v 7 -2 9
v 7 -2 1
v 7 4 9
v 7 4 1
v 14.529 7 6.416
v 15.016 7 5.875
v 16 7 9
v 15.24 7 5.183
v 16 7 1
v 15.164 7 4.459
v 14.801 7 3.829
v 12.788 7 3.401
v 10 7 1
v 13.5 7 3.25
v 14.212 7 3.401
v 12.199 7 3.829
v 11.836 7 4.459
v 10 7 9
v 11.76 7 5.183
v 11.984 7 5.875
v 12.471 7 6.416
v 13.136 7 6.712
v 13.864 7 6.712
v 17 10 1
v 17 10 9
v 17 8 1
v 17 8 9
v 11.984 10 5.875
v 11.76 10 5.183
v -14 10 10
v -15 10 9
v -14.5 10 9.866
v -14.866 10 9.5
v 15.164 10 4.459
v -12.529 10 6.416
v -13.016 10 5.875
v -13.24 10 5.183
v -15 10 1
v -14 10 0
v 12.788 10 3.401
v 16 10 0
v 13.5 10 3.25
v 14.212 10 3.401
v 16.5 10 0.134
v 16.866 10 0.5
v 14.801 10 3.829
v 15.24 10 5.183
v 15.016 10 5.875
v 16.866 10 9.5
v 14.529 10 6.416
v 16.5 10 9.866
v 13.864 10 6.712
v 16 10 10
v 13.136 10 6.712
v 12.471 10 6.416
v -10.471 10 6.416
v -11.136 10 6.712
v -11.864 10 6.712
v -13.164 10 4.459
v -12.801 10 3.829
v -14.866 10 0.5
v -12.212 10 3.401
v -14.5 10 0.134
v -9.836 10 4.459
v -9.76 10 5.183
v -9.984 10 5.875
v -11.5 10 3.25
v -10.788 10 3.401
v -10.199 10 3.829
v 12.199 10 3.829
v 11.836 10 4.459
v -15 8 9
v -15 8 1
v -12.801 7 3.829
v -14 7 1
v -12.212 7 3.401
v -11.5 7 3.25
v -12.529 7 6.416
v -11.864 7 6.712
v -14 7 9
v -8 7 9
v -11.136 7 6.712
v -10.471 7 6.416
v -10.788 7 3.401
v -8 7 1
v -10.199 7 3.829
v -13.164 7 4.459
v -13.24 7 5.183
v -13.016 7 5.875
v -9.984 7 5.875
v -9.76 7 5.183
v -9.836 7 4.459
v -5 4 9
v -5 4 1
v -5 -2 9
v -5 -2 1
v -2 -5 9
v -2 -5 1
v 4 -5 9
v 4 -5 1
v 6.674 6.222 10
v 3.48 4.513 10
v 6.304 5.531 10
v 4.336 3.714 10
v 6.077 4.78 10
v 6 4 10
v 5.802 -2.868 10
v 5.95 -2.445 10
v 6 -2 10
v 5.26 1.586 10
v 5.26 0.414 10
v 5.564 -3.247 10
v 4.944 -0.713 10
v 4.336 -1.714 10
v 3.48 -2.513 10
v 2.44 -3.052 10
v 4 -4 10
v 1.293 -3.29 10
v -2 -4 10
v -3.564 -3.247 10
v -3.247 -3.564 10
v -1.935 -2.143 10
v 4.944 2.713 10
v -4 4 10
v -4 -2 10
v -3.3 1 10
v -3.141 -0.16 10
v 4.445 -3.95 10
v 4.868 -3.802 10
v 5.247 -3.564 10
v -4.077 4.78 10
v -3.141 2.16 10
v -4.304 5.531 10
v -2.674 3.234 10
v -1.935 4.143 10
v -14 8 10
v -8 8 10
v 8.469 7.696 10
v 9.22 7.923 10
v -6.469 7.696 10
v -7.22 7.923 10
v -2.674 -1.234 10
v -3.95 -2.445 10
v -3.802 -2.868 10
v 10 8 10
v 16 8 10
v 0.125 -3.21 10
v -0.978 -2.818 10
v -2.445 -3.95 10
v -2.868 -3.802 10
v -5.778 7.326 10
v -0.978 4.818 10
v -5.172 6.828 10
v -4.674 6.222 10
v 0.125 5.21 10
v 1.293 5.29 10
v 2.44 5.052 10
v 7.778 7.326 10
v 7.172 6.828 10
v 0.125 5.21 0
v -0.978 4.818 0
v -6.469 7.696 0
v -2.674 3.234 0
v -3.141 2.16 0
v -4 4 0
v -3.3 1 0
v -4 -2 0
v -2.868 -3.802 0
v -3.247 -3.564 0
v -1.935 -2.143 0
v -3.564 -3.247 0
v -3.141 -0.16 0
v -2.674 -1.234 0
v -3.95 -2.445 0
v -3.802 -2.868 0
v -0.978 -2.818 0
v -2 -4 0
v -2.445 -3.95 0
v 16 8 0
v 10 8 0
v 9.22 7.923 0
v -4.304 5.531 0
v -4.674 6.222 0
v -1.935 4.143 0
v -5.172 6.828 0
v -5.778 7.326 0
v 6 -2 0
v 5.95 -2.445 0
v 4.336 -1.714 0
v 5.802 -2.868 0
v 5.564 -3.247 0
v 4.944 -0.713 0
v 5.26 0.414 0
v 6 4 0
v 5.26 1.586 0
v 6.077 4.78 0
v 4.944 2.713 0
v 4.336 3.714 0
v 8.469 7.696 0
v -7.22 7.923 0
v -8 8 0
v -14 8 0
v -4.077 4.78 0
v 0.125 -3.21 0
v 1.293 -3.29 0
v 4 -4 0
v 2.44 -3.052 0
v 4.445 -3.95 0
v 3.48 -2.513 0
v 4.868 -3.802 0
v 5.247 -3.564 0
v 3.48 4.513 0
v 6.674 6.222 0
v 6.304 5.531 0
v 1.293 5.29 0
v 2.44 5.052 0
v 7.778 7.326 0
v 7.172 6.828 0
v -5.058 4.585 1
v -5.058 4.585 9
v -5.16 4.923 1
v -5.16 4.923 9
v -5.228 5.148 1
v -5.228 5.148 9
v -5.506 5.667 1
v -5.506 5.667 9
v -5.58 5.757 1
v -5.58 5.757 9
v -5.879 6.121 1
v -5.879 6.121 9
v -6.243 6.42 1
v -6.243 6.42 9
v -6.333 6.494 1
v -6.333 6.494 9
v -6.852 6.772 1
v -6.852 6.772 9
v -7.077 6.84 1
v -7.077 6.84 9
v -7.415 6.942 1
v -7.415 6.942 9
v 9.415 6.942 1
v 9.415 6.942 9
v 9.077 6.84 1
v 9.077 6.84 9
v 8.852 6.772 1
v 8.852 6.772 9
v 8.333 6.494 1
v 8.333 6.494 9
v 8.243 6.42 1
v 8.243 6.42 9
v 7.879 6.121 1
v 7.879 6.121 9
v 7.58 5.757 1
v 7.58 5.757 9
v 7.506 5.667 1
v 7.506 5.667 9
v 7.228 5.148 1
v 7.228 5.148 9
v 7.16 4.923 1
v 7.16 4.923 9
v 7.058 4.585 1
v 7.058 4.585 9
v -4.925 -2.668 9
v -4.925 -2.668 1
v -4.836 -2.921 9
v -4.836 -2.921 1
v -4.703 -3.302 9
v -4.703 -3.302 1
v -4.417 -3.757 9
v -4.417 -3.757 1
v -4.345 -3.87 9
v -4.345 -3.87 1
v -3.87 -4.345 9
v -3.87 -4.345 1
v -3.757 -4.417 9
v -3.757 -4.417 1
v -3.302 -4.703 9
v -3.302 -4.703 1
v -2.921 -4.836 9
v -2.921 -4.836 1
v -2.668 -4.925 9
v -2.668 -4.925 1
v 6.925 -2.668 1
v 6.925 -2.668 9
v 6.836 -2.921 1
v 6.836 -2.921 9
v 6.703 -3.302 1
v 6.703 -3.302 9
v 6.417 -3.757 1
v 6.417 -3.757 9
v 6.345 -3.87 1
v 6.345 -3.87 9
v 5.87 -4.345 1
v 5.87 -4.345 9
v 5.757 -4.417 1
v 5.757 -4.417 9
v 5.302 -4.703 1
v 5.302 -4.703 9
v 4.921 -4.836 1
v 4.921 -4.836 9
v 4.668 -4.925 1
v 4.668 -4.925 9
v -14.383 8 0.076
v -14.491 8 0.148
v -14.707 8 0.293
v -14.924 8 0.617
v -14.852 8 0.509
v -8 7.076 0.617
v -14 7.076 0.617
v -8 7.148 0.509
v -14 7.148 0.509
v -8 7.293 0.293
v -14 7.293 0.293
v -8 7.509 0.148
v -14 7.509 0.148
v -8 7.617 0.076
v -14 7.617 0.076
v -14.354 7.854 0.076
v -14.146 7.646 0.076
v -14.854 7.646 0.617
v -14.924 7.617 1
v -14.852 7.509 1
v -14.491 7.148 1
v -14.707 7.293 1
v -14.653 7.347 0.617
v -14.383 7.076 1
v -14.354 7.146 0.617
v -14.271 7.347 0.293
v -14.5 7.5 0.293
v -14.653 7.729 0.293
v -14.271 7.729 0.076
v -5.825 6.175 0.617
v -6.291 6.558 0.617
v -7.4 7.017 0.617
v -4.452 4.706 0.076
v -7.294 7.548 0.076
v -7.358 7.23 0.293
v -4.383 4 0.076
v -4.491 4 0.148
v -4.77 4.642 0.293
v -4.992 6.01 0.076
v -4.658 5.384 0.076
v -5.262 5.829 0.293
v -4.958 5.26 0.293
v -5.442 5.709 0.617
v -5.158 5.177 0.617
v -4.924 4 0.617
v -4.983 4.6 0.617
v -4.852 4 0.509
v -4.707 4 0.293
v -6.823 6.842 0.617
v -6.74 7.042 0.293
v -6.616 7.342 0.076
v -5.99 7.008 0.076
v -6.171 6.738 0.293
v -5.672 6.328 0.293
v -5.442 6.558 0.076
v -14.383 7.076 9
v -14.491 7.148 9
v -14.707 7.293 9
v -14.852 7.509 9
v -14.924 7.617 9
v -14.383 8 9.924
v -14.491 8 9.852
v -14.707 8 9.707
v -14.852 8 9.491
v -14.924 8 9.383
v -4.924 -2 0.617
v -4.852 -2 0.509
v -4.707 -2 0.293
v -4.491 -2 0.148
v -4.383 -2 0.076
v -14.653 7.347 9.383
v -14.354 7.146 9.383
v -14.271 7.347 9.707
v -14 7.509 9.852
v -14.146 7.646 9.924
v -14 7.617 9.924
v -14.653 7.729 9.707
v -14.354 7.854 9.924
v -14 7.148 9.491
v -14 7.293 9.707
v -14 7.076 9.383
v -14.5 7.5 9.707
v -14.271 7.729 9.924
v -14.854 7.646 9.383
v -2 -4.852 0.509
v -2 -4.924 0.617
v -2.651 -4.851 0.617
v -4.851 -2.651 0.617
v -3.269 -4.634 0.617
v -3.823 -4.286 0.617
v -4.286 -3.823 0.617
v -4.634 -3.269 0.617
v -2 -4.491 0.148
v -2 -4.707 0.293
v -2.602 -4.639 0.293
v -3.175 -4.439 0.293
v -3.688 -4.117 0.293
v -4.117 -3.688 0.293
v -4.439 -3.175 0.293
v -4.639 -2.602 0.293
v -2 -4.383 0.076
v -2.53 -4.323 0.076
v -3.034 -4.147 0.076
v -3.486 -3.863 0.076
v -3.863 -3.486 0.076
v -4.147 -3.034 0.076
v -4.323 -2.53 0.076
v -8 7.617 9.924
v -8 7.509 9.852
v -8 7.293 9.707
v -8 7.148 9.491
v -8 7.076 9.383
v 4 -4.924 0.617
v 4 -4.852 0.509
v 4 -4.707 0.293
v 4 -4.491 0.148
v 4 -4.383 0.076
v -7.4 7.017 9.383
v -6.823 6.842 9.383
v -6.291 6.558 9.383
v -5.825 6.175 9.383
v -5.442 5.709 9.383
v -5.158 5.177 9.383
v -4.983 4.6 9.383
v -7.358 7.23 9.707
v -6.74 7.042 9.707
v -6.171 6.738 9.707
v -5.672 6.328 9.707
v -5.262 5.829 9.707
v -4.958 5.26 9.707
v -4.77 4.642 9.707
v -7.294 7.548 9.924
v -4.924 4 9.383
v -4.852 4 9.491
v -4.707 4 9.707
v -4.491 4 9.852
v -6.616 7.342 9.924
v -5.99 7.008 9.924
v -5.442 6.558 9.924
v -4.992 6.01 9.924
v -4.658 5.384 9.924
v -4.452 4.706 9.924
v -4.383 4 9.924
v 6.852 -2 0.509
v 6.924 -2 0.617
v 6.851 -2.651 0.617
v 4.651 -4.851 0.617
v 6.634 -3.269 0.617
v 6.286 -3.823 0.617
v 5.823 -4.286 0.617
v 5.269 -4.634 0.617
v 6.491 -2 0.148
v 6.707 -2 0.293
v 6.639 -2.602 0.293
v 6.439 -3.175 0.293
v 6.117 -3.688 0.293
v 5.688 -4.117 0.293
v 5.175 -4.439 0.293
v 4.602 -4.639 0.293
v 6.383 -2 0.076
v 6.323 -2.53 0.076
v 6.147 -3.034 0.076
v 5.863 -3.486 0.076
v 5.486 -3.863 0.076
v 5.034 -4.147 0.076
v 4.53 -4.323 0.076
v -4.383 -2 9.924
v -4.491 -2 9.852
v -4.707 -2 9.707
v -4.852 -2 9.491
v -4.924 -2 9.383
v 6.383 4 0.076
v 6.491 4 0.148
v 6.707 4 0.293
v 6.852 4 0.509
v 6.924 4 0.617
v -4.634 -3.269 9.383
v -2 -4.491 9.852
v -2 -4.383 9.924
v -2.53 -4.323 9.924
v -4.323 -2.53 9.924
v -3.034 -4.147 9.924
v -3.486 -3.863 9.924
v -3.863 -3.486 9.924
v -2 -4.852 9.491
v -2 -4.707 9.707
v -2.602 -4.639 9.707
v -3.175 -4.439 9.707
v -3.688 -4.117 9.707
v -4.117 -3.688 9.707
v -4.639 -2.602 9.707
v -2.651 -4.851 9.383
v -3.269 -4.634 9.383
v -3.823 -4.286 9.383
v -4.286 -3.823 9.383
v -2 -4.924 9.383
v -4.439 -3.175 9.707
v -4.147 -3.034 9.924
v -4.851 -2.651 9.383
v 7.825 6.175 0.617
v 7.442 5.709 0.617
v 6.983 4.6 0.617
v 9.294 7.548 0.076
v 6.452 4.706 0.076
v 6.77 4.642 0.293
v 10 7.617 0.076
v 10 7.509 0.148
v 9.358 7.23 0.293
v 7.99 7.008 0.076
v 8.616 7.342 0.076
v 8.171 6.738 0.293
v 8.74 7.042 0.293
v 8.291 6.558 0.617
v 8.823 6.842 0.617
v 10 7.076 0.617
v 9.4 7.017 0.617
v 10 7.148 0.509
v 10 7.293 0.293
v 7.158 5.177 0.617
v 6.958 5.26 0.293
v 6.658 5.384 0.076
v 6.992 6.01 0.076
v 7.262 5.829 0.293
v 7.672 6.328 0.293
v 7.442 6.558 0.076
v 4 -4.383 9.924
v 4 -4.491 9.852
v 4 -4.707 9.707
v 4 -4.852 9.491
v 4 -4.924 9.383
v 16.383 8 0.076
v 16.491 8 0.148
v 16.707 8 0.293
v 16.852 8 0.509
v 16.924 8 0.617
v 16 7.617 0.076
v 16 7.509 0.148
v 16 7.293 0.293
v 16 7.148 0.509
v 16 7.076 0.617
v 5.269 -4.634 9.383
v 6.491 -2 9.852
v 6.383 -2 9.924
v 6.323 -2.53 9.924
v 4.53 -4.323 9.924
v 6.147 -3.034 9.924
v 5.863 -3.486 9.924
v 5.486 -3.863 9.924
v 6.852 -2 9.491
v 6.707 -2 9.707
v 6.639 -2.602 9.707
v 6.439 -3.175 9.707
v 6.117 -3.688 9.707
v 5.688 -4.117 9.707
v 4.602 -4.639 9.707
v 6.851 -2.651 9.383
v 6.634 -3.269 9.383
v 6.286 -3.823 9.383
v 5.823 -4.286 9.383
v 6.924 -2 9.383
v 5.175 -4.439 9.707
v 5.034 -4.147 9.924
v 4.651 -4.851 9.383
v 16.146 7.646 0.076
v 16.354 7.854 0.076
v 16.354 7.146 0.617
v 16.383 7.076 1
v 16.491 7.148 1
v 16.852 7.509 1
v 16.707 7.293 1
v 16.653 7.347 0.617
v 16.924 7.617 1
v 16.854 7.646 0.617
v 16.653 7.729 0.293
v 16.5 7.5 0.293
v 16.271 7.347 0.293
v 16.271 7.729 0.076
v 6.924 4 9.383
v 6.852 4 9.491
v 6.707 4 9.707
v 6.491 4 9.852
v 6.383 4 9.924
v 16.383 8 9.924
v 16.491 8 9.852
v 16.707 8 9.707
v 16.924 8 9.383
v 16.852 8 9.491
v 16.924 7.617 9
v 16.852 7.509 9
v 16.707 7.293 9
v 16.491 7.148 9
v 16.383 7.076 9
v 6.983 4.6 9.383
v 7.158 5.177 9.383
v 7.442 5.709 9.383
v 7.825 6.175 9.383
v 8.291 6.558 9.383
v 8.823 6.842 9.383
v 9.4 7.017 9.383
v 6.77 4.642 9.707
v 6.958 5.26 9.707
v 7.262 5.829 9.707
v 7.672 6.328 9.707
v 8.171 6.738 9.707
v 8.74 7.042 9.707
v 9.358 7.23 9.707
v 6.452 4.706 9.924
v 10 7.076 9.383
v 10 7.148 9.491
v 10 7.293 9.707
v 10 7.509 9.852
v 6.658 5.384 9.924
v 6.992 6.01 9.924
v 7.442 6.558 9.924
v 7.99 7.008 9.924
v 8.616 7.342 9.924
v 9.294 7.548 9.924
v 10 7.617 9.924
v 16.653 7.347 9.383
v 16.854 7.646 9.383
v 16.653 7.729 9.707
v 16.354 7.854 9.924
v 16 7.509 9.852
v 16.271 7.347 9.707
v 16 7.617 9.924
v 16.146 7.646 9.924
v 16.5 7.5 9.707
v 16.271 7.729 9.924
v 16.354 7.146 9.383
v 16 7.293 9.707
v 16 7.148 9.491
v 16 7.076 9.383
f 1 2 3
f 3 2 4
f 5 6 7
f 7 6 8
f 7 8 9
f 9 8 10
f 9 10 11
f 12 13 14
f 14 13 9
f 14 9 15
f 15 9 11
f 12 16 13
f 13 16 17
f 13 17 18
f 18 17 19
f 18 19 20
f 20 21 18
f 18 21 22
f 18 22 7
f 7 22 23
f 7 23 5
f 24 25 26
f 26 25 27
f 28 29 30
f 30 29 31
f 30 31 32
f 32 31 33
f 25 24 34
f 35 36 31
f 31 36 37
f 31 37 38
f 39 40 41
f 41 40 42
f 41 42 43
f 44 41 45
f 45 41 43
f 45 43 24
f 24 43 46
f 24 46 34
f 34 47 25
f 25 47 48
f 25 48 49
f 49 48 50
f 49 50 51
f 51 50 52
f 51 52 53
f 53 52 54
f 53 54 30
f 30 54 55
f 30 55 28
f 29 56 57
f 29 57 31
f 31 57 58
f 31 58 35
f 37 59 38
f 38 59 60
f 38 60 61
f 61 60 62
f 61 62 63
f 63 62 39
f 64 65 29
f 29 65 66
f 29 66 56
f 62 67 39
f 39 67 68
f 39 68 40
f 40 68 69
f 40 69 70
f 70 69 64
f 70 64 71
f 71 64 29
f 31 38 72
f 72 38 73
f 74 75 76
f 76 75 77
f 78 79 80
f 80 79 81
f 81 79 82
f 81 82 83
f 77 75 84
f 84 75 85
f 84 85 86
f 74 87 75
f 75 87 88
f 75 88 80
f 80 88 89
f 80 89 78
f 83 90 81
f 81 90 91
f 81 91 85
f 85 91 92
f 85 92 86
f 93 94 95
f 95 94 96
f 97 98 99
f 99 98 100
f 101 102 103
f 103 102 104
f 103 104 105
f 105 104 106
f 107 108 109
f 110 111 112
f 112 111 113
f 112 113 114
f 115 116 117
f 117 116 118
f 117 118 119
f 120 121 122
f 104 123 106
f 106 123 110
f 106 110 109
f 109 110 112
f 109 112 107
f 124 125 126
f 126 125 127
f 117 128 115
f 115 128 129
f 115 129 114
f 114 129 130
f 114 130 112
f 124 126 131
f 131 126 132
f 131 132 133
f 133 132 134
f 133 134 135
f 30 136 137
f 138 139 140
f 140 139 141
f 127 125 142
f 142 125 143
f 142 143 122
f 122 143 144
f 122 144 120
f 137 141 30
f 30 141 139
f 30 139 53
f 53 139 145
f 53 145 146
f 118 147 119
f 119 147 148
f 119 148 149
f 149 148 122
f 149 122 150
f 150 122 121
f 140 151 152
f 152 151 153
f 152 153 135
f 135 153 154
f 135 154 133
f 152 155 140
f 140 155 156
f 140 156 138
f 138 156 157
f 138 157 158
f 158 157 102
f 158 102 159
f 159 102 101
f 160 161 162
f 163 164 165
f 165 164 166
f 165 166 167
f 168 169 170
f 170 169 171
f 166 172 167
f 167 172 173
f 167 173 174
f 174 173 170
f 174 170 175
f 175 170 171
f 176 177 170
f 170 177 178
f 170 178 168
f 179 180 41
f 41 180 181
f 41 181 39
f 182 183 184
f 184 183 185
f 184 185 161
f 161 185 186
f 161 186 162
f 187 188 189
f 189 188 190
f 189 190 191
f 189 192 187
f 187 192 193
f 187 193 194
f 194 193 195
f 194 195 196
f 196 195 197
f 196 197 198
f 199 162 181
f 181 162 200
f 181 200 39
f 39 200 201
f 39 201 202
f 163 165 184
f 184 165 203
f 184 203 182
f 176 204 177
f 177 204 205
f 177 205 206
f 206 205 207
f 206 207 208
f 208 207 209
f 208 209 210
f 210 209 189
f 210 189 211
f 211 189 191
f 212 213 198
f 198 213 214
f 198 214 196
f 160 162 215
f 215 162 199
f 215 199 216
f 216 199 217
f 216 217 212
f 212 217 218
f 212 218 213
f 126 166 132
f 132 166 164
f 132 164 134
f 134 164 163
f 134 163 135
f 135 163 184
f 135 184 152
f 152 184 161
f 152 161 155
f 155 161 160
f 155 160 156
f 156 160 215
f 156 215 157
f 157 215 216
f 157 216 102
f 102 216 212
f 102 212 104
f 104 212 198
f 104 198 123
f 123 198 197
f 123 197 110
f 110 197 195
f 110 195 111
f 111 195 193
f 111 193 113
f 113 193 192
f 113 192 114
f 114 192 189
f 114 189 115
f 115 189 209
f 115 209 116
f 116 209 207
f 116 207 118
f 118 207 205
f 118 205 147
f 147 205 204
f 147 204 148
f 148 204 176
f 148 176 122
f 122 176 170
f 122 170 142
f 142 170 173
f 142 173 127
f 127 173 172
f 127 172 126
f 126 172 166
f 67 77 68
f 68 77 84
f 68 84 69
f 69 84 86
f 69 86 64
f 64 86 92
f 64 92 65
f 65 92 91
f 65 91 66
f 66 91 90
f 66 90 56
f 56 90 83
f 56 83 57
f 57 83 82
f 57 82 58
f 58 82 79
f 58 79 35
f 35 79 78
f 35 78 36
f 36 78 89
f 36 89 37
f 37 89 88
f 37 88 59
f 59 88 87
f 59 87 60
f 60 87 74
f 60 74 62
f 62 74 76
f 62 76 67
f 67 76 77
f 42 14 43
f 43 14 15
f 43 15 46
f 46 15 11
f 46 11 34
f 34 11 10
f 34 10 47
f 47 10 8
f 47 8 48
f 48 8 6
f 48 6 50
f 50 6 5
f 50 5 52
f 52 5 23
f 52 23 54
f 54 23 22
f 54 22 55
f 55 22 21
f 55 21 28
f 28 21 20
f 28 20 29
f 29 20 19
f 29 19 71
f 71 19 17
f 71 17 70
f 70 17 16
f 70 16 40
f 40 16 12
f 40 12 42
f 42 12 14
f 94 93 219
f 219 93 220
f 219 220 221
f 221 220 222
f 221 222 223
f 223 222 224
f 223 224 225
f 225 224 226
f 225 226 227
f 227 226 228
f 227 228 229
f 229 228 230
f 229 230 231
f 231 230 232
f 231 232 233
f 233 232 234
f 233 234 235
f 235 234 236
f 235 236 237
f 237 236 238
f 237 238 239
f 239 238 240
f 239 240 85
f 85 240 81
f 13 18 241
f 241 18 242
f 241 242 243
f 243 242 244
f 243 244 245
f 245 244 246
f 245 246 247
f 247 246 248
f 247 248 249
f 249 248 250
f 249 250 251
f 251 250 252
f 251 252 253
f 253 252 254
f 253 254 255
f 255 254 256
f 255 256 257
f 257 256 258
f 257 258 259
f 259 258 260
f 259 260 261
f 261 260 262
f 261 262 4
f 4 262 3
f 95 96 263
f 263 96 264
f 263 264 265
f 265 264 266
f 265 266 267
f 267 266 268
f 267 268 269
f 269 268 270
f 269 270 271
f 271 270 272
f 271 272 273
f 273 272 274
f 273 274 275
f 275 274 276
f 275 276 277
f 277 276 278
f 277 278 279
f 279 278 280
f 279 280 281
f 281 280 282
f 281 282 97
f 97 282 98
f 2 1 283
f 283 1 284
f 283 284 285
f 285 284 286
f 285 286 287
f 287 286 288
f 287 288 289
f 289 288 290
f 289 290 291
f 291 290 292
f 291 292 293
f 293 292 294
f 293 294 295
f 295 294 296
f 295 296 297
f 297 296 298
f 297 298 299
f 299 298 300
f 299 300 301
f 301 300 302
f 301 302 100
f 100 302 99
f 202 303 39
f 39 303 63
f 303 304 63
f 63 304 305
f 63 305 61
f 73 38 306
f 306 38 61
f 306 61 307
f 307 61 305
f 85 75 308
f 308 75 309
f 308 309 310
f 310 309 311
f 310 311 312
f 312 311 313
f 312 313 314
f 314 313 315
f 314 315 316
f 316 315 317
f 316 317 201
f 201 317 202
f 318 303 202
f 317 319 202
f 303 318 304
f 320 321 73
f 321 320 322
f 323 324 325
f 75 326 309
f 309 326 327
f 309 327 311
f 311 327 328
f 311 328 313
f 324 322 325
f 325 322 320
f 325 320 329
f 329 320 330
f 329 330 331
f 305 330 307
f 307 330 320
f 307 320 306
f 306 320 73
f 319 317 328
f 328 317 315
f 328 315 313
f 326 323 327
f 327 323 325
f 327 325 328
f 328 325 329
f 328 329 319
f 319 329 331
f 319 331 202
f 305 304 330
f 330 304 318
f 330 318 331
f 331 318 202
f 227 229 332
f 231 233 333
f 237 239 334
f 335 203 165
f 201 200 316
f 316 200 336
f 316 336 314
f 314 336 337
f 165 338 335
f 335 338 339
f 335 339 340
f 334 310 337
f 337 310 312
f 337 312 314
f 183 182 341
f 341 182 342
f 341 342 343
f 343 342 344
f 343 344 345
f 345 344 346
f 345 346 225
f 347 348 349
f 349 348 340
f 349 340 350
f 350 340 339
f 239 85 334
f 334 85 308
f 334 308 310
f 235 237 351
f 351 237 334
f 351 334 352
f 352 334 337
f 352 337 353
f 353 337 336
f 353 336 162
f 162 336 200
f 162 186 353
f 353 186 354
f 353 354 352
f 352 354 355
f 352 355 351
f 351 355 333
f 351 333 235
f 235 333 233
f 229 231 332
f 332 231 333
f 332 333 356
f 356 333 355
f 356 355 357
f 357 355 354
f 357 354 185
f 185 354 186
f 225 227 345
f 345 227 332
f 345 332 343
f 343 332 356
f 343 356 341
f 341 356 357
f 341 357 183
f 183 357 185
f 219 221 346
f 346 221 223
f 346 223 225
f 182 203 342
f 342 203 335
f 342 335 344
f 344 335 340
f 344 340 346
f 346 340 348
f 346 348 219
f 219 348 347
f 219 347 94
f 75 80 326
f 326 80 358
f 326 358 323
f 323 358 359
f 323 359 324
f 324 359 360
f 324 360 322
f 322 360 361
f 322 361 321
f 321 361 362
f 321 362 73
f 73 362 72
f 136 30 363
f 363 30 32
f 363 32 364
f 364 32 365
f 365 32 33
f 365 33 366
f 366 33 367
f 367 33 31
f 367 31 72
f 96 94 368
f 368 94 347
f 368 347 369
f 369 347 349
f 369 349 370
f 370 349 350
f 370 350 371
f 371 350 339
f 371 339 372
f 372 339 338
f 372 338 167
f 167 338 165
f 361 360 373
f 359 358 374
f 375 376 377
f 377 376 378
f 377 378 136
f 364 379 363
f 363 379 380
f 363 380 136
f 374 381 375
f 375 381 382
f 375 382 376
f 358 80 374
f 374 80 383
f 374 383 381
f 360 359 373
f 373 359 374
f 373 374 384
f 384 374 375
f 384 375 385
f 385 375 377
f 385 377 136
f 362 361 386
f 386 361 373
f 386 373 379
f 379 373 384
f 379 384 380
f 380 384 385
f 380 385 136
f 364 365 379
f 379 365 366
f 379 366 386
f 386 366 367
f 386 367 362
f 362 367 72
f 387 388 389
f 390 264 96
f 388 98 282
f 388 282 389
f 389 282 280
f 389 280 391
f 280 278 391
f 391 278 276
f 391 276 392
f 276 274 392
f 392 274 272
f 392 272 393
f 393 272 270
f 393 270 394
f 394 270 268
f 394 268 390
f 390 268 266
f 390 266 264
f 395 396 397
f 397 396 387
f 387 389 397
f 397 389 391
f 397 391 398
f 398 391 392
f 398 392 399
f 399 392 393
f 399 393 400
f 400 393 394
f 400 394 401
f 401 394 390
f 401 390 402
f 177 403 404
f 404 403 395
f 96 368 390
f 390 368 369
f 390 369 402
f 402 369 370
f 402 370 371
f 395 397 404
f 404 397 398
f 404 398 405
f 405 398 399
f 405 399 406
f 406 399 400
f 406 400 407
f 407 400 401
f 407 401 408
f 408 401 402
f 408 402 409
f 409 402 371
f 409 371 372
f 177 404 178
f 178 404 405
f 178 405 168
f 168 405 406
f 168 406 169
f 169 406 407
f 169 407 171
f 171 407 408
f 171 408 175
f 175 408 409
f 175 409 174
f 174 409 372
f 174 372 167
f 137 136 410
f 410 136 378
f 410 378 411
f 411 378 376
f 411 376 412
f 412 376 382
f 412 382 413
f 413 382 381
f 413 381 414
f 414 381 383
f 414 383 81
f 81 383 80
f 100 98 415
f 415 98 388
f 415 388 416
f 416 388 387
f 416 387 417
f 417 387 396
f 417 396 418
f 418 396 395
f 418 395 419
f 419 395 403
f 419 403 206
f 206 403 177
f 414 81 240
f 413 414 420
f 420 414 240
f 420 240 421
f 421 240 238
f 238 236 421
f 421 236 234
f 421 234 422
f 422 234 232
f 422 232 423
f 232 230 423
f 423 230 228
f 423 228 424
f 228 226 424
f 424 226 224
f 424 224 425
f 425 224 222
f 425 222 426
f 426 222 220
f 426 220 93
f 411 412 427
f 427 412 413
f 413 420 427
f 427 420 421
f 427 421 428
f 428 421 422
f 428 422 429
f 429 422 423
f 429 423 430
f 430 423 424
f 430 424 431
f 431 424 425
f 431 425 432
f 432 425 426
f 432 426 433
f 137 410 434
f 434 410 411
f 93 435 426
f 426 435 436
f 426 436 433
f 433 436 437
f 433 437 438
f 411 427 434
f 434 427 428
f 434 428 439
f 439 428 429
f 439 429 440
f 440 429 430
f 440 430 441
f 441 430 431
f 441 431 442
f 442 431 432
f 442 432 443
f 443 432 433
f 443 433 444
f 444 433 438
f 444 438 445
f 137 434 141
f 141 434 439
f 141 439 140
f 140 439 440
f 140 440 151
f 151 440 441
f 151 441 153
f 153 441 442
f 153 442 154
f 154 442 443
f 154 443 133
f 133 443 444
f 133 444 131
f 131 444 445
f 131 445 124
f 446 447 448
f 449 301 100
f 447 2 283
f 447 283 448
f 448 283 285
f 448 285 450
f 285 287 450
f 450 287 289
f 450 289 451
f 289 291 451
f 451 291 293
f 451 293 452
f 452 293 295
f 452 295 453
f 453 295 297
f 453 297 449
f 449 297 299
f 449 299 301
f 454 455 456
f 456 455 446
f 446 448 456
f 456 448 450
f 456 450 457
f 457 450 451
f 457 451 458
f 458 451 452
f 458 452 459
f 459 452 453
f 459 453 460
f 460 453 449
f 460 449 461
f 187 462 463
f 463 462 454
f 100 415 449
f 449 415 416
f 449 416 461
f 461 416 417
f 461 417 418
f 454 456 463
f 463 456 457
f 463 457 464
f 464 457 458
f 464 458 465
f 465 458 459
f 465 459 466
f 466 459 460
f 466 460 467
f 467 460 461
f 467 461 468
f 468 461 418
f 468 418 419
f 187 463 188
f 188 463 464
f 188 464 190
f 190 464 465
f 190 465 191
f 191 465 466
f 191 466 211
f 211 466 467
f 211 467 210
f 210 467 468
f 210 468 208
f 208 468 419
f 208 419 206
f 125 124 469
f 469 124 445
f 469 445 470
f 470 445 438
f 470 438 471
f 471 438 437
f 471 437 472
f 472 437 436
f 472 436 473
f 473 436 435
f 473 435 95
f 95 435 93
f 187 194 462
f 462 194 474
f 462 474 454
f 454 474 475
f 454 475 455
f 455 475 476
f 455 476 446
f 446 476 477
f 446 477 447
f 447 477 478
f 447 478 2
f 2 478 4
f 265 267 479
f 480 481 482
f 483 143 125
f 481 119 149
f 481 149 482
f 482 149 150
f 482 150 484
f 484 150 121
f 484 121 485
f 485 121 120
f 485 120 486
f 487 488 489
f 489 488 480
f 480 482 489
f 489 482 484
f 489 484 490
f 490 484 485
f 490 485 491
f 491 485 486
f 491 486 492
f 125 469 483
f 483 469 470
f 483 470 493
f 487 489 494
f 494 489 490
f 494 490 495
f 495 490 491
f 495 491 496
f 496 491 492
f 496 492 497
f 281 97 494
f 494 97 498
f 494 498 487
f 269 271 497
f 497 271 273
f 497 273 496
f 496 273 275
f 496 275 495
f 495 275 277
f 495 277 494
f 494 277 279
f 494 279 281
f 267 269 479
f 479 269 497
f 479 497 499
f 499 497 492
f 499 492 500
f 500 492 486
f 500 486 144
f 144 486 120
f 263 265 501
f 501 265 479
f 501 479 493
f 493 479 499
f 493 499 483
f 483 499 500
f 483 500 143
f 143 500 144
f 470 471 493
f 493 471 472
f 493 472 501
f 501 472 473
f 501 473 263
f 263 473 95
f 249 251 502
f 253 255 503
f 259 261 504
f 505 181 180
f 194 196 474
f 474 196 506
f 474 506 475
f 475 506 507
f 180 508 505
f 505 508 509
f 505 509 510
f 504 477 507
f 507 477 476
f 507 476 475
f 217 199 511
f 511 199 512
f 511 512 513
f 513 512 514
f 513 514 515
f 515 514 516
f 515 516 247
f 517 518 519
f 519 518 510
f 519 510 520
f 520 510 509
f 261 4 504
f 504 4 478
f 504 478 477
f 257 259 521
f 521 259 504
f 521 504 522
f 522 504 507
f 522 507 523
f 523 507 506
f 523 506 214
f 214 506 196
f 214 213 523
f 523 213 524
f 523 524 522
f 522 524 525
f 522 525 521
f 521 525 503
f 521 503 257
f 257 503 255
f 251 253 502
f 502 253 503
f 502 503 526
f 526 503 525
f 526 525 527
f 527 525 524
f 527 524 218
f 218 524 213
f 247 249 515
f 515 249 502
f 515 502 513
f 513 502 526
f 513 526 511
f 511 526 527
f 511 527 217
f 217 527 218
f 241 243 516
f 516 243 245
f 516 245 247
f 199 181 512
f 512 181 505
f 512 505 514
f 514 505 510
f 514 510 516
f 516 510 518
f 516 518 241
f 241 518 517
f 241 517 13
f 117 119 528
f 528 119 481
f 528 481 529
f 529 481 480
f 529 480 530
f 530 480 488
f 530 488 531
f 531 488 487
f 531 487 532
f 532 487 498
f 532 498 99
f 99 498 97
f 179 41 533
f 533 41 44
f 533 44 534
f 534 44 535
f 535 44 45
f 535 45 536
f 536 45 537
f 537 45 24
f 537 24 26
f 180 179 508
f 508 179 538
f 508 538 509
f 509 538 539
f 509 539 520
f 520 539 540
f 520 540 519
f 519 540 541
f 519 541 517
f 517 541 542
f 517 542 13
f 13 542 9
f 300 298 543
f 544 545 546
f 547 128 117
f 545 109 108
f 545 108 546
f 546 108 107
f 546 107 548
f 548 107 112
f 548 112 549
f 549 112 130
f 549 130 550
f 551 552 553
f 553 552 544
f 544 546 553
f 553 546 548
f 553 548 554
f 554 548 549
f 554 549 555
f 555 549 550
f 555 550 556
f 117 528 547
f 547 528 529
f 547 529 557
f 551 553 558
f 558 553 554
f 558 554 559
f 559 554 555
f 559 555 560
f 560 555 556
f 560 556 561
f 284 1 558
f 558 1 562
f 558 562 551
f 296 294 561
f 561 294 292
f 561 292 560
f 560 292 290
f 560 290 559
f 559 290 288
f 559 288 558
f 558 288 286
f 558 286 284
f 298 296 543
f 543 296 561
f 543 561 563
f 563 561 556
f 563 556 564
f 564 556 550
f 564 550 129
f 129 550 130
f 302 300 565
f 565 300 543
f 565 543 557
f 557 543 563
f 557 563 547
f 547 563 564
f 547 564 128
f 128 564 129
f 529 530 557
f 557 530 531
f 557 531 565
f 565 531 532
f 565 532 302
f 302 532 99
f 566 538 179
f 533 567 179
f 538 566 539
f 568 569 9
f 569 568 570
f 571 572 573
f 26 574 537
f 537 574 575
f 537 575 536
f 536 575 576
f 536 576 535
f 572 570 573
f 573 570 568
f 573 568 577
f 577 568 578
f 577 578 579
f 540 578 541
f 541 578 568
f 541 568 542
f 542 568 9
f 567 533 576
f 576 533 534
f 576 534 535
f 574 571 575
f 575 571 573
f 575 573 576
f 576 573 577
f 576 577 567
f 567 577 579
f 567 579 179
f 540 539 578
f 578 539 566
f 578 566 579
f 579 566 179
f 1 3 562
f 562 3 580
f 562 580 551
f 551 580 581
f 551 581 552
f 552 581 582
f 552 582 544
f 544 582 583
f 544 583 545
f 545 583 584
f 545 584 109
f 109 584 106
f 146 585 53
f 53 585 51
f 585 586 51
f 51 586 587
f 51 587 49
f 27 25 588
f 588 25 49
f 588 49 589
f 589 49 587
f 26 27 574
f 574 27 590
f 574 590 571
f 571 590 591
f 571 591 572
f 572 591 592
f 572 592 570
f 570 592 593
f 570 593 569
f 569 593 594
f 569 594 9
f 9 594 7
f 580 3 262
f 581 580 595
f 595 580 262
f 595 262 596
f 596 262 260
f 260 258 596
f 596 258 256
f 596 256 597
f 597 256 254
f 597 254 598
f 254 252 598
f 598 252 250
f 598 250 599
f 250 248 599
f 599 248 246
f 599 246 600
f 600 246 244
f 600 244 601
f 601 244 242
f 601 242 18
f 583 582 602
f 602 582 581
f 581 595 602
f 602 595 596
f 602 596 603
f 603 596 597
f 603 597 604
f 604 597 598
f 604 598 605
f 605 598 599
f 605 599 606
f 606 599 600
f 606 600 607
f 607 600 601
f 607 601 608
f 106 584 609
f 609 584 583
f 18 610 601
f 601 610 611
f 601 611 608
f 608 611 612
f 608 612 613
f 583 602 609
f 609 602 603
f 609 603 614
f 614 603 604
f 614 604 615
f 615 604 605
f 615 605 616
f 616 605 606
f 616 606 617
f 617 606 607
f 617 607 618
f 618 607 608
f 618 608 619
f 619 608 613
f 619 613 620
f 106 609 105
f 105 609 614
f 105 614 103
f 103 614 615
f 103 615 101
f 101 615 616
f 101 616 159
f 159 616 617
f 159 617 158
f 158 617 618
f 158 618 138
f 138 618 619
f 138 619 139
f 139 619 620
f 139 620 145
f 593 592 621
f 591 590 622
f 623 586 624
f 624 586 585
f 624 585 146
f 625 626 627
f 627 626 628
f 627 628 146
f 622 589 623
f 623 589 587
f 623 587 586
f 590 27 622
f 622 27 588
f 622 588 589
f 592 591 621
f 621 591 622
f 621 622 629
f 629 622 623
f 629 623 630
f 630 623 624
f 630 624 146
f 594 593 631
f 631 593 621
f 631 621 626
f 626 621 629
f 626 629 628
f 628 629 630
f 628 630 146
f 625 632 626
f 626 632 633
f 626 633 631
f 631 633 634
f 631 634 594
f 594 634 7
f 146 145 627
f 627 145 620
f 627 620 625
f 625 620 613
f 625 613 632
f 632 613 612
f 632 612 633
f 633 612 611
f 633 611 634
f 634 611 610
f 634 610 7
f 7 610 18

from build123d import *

# Parameters (mm, degrees)
SKETCH_1_W          = 10
SKETCH_1_H          = 3
EXTRUDE_1_DEPTH     = 10
SKETCH_2_R          = 4.3
CUT_EXTRUDE_1_DEPTH = 11
SKETCH_3_R          = 1.75
CUT_EXTRUDE_2_DEPTH = 4
FILLET_1_R          = 3
FILLET_2_R          = 1


with BuildPart() as part:
    # ｽｹｯﾁ1 → ﾎﾞｽ - 押し出し1 (new body)
    with BuildSketch(Plane.XY):
        Polygon((7, 10), (1, 10), (1, -5), (7, -5), (7, 7), align=None)
        with Locations((12, 8.5)):
            Rectangle(SKETCH_1_W, SKETCH_1_H)
        Polygon((1, -5), (1, 10), (-5, 10), (-5, 7), (-5, -5), align=None)
        with Locations((-10, 8.5)):
            Rectangle(SKETCH_1_W, SKETCH_1_H)
    extrude(amount=EXTRUDE_1_DEPTH)

    # ｽｹｯﾁ2 → ｶｯﾄ - 押し出し1 (cut, through all)
    with BuildSketch(Plane(origin=(0, 0, 0), x_dir=(-1, 0, 0), z_dir=(0, 0, -1))):
        with Locations((-1, 1)):
            Circle(SKETCH_2_R)
    extrude(amount=-CUT_EXTRUDE_1_DEPTH, mode=Mode.SUBTRACT)

    # ｽｹｯﾁ3 → ｶｯﾄ - 押し出し2 (cut, through all)
    with BuildSketch(Plane.XZ.offset(-7)):
        with Locations((-11.5, 5)):
            Circle(SKETCH_3_R)
        with Locations((13.5, 5)):
            Circle(SKETCH_3_R)
    extrude(amount=-CUT_EXTRUDE_2_DEPTH, mode=Mode.SUBTRACT)

    # ﾌｨﾚｯﾄ1
    fillet_1_edges = [part.edges().sort_by_distance(p)[0] for p in [
        (7, -5, 5),
        (-5, -5, 5),
        (-5, 7, 5),
        (7, 7, 5),
    ]]
    fillet(fillet_1_edges, radius=FILLET_1_R)

    # ﾌｨﾚｯﾄ2
    fillet_2_edges = [part.edges().sort_by_distance(p)[0] for p in [
        (-15, 8.5, 0),
        (17, 8.5, 0),
        (17, 8.5, 10),
        (-15, 7, 5),
        (17, 7, 5),
        (-15, 8.5, 10),
        (-5, 1, 0),
        (-5, 1, 10),
        (-11.5, 7, 0),
        (-11.5, 7, 10),
        (13.5, 7, 0),
        (13.5, 7, 10),
        (7, 1, 0),
        (7, 1, 10),
        (1, -5, 0),
        (1, -5, 10),
        (6.121320344, -4.121320344, 0),
        (-4.121320344, -4.121320344, 0),
        (6.121320344, -4.121320344, 10),
        (-4.121320344, -4.121320344, 10),
        (-5.878679656, 6.121320344, 0),
        (-5.878679656, 6.121320344, 10),
        (7.878679656, 6.121320344, 0),
        (7.878679656, 6.121320344, 10),
    ]]
    fillet(fillet_2_edges, radius=FILLET_2_R)


solid = part.part
